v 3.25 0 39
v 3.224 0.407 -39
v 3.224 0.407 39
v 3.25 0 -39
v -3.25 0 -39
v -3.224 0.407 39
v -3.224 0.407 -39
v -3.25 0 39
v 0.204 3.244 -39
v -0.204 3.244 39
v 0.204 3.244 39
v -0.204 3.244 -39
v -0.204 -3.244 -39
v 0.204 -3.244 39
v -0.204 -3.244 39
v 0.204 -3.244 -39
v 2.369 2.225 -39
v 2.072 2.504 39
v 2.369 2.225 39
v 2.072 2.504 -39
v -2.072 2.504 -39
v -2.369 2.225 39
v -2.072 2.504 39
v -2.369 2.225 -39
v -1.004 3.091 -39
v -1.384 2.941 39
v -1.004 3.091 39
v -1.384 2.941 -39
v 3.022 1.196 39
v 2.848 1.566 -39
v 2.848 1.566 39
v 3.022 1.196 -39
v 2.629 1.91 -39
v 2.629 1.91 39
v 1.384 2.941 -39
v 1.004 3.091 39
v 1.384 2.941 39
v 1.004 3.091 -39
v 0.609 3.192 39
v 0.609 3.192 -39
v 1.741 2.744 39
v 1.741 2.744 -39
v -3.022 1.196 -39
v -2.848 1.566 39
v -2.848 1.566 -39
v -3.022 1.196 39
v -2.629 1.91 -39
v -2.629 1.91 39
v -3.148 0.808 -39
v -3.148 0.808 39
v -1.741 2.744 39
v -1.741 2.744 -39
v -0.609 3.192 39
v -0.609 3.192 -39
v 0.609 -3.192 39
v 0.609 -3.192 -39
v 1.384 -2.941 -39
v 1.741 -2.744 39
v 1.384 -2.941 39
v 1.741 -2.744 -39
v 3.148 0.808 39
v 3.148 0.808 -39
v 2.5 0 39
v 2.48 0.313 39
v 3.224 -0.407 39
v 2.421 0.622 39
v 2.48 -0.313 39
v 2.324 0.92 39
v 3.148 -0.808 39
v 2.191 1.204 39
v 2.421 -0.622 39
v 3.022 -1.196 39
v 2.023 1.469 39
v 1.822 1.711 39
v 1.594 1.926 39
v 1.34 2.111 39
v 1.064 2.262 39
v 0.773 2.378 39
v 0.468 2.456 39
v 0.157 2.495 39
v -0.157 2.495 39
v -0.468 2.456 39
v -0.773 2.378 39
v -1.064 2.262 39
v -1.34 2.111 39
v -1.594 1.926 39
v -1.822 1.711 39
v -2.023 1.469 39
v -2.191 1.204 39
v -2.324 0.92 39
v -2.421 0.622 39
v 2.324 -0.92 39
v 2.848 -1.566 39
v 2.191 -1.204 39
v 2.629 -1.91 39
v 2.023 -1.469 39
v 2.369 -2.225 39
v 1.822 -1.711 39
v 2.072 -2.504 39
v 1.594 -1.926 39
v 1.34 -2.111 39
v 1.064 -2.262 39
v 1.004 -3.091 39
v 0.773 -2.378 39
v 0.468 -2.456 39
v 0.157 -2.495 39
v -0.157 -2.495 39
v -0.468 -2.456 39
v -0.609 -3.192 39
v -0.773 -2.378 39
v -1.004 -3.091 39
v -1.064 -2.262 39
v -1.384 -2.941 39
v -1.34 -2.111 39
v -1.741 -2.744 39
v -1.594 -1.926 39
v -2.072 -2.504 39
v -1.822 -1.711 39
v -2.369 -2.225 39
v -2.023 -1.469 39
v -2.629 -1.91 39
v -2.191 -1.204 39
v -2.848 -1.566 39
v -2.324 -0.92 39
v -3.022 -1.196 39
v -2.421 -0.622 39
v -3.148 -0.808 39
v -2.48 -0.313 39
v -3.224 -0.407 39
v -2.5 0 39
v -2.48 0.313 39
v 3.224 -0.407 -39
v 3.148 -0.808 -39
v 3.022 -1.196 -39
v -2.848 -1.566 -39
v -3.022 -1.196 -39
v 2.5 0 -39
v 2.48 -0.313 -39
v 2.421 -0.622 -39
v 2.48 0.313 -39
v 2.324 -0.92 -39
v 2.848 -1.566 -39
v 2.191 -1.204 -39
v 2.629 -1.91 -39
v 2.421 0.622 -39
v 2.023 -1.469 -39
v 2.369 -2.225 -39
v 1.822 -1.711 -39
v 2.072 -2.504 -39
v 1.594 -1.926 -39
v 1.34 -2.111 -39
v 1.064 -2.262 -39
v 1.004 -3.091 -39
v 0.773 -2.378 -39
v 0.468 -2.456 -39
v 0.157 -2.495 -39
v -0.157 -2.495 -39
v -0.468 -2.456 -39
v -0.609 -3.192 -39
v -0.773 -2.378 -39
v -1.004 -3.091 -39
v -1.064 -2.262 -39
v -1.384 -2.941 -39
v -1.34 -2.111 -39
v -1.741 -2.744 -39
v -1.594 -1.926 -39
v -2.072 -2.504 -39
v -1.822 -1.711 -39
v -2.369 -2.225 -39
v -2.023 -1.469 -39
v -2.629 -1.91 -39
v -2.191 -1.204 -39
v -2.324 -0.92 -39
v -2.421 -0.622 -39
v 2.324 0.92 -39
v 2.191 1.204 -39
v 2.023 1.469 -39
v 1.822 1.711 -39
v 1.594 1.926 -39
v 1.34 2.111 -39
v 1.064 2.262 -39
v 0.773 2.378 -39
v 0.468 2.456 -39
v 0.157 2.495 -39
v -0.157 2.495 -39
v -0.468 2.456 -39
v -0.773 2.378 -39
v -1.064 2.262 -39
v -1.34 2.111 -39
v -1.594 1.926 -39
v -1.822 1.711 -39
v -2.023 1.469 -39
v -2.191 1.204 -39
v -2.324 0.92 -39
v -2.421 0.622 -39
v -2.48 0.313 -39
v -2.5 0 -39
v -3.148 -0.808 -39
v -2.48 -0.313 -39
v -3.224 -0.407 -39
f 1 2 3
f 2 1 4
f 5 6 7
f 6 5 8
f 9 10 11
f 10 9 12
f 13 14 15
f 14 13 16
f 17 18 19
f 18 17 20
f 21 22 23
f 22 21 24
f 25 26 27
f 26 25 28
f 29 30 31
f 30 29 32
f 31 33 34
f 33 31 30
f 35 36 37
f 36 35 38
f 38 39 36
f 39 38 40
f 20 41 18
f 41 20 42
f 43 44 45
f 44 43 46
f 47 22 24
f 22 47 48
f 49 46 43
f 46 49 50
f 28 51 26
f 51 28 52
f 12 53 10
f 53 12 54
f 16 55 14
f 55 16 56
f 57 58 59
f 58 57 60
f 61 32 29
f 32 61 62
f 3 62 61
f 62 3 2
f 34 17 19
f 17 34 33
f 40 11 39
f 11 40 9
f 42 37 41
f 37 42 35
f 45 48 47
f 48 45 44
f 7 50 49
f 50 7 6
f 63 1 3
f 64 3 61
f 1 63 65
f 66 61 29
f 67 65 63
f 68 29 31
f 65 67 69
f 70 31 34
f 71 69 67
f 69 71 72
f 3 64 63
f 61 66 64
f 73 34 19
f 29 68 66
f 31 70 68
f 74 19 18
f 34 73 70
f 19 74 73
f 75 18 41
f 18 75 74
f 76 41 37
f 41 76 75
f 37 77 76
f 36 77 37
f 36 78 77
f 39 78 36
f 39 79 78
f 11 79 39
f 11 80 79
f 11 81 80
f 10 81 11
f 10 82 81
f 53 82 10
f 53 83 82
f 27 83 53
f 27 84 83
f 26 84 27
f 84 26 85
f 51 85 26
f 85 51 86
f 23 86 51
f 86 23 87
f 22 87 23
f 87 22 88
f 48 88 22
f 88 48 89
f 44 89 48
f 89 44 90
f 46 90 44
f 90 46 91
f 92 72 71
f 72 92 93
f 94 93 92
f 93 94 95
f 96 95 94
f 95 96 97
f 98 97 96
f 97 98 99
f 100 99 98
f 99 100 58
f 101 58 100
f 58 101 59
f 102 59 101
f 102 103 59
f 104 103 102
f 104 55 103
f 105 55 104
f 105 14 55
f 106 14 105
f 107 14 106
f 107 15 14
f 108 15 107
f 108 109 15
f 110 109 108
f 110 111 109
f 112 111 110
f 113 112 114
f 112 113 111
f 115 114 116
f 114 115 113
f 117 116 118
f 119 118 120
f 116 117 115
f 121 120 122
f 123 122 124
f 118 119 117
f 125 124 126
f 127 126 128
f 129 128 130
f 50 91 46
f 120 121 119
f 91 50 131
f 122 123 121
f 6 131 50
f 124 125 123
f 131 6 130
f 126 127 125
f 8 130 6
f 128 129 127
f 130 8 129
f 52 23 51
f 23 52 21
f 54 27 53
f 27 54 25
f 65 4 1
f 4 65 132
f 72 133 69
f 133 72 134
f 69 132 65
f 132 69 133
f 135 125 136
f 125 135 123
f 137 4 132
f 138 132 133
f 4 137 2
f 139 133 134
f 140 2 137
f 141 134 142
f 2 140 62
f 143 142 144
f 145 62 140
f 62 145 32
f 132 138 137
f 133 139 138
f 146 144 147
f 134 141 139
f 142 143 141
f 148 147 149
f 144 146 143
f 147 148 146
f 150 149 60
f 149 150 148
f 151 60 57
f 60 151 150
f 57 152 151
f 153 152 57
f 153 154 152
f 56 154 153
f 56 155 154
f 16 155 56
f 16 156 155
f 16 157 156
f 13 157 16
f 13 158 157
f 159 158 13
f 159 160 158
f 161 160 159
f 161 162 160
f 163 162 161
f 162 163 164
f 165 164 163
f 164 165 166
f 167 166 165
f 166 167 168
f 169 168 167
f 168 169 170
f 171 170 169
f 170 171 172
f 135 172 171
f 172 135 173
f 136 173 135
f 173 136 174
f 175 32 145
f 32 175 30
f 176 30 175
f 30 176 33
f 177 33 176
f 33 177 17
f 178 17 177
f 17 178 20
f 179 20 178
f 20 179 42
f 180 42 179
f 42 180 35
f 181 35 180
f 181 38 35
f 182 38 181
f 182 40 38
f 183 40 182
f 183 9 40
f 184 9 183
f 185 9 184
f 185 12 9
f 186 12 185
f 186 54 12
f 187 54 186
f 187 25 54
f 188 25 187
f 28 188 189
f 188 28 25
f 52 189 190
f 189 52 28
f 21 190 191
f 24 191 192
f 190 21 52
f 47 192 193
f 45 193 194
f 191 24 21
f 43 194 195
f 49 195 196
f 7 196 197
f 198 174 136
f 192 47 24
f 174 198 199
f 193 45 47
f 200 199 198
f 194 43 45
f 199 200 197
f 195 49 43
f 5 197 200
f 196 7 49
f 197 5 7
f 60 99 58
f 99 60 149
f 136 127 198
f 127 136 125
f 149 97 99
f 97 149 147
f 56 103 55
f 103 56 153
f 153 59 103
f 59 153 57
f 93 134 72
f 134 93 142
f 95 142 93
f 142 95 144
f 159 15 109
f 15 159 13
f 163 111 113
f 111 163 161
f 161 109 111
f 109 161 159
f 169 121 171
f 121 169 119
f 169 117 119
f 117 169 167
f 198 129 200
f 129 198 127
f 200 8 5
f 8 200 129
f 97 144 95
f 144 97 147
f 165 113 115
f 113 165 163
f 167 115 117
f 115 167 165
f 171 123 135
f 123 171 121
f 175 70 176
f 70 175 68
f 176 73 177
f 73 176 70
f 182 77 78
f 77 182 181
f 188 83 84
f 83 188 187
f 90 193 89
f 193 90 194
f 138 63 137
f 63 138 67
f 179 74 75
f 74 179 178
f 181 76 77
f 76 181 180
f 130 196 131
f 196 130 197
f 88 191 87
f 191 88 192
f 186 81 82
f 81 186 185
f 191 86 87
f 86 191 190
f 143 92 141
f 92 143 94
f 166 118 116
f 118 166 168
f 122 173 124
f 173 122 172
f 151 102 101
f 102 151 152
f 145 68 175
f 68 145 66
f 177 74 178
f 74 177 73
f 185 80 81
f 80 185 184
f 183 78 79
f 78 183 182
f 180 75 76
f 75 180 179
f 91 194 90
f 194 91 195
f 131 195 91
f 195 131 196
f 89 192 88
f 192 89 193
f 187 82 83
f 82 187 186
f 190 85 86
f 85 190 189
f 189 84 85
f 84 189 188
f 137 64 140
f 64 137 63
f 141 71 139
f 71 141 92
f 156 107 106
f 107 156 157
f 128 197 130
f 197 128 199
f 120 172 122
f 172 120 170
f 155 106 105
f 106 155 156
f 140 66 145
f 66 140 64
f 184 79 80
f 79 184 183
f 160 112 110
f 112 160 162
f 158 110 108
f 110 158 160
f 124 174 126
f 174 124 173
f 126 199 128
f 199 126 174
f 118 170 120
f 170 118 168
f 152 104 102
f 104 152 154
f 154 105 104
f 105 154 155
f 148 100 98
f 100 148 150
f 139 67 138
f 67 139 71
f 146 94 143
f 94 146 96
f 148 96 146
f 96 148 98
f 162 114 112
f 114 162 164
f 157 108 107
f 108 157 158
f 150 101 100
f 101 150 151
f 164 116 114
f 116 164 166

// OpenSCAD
$fn = 50;


difference() {
	union() {
		translate(v = [0, 0, -39.0000000000]) {
			cylinder(h = 78, r = 3.2500000000);
		}
	}
	union() {
		translate(v = [0, 0, -100.0000000000]) {
			cylinder(h = 200, r = 2.5000000000);
		}
	}
}
